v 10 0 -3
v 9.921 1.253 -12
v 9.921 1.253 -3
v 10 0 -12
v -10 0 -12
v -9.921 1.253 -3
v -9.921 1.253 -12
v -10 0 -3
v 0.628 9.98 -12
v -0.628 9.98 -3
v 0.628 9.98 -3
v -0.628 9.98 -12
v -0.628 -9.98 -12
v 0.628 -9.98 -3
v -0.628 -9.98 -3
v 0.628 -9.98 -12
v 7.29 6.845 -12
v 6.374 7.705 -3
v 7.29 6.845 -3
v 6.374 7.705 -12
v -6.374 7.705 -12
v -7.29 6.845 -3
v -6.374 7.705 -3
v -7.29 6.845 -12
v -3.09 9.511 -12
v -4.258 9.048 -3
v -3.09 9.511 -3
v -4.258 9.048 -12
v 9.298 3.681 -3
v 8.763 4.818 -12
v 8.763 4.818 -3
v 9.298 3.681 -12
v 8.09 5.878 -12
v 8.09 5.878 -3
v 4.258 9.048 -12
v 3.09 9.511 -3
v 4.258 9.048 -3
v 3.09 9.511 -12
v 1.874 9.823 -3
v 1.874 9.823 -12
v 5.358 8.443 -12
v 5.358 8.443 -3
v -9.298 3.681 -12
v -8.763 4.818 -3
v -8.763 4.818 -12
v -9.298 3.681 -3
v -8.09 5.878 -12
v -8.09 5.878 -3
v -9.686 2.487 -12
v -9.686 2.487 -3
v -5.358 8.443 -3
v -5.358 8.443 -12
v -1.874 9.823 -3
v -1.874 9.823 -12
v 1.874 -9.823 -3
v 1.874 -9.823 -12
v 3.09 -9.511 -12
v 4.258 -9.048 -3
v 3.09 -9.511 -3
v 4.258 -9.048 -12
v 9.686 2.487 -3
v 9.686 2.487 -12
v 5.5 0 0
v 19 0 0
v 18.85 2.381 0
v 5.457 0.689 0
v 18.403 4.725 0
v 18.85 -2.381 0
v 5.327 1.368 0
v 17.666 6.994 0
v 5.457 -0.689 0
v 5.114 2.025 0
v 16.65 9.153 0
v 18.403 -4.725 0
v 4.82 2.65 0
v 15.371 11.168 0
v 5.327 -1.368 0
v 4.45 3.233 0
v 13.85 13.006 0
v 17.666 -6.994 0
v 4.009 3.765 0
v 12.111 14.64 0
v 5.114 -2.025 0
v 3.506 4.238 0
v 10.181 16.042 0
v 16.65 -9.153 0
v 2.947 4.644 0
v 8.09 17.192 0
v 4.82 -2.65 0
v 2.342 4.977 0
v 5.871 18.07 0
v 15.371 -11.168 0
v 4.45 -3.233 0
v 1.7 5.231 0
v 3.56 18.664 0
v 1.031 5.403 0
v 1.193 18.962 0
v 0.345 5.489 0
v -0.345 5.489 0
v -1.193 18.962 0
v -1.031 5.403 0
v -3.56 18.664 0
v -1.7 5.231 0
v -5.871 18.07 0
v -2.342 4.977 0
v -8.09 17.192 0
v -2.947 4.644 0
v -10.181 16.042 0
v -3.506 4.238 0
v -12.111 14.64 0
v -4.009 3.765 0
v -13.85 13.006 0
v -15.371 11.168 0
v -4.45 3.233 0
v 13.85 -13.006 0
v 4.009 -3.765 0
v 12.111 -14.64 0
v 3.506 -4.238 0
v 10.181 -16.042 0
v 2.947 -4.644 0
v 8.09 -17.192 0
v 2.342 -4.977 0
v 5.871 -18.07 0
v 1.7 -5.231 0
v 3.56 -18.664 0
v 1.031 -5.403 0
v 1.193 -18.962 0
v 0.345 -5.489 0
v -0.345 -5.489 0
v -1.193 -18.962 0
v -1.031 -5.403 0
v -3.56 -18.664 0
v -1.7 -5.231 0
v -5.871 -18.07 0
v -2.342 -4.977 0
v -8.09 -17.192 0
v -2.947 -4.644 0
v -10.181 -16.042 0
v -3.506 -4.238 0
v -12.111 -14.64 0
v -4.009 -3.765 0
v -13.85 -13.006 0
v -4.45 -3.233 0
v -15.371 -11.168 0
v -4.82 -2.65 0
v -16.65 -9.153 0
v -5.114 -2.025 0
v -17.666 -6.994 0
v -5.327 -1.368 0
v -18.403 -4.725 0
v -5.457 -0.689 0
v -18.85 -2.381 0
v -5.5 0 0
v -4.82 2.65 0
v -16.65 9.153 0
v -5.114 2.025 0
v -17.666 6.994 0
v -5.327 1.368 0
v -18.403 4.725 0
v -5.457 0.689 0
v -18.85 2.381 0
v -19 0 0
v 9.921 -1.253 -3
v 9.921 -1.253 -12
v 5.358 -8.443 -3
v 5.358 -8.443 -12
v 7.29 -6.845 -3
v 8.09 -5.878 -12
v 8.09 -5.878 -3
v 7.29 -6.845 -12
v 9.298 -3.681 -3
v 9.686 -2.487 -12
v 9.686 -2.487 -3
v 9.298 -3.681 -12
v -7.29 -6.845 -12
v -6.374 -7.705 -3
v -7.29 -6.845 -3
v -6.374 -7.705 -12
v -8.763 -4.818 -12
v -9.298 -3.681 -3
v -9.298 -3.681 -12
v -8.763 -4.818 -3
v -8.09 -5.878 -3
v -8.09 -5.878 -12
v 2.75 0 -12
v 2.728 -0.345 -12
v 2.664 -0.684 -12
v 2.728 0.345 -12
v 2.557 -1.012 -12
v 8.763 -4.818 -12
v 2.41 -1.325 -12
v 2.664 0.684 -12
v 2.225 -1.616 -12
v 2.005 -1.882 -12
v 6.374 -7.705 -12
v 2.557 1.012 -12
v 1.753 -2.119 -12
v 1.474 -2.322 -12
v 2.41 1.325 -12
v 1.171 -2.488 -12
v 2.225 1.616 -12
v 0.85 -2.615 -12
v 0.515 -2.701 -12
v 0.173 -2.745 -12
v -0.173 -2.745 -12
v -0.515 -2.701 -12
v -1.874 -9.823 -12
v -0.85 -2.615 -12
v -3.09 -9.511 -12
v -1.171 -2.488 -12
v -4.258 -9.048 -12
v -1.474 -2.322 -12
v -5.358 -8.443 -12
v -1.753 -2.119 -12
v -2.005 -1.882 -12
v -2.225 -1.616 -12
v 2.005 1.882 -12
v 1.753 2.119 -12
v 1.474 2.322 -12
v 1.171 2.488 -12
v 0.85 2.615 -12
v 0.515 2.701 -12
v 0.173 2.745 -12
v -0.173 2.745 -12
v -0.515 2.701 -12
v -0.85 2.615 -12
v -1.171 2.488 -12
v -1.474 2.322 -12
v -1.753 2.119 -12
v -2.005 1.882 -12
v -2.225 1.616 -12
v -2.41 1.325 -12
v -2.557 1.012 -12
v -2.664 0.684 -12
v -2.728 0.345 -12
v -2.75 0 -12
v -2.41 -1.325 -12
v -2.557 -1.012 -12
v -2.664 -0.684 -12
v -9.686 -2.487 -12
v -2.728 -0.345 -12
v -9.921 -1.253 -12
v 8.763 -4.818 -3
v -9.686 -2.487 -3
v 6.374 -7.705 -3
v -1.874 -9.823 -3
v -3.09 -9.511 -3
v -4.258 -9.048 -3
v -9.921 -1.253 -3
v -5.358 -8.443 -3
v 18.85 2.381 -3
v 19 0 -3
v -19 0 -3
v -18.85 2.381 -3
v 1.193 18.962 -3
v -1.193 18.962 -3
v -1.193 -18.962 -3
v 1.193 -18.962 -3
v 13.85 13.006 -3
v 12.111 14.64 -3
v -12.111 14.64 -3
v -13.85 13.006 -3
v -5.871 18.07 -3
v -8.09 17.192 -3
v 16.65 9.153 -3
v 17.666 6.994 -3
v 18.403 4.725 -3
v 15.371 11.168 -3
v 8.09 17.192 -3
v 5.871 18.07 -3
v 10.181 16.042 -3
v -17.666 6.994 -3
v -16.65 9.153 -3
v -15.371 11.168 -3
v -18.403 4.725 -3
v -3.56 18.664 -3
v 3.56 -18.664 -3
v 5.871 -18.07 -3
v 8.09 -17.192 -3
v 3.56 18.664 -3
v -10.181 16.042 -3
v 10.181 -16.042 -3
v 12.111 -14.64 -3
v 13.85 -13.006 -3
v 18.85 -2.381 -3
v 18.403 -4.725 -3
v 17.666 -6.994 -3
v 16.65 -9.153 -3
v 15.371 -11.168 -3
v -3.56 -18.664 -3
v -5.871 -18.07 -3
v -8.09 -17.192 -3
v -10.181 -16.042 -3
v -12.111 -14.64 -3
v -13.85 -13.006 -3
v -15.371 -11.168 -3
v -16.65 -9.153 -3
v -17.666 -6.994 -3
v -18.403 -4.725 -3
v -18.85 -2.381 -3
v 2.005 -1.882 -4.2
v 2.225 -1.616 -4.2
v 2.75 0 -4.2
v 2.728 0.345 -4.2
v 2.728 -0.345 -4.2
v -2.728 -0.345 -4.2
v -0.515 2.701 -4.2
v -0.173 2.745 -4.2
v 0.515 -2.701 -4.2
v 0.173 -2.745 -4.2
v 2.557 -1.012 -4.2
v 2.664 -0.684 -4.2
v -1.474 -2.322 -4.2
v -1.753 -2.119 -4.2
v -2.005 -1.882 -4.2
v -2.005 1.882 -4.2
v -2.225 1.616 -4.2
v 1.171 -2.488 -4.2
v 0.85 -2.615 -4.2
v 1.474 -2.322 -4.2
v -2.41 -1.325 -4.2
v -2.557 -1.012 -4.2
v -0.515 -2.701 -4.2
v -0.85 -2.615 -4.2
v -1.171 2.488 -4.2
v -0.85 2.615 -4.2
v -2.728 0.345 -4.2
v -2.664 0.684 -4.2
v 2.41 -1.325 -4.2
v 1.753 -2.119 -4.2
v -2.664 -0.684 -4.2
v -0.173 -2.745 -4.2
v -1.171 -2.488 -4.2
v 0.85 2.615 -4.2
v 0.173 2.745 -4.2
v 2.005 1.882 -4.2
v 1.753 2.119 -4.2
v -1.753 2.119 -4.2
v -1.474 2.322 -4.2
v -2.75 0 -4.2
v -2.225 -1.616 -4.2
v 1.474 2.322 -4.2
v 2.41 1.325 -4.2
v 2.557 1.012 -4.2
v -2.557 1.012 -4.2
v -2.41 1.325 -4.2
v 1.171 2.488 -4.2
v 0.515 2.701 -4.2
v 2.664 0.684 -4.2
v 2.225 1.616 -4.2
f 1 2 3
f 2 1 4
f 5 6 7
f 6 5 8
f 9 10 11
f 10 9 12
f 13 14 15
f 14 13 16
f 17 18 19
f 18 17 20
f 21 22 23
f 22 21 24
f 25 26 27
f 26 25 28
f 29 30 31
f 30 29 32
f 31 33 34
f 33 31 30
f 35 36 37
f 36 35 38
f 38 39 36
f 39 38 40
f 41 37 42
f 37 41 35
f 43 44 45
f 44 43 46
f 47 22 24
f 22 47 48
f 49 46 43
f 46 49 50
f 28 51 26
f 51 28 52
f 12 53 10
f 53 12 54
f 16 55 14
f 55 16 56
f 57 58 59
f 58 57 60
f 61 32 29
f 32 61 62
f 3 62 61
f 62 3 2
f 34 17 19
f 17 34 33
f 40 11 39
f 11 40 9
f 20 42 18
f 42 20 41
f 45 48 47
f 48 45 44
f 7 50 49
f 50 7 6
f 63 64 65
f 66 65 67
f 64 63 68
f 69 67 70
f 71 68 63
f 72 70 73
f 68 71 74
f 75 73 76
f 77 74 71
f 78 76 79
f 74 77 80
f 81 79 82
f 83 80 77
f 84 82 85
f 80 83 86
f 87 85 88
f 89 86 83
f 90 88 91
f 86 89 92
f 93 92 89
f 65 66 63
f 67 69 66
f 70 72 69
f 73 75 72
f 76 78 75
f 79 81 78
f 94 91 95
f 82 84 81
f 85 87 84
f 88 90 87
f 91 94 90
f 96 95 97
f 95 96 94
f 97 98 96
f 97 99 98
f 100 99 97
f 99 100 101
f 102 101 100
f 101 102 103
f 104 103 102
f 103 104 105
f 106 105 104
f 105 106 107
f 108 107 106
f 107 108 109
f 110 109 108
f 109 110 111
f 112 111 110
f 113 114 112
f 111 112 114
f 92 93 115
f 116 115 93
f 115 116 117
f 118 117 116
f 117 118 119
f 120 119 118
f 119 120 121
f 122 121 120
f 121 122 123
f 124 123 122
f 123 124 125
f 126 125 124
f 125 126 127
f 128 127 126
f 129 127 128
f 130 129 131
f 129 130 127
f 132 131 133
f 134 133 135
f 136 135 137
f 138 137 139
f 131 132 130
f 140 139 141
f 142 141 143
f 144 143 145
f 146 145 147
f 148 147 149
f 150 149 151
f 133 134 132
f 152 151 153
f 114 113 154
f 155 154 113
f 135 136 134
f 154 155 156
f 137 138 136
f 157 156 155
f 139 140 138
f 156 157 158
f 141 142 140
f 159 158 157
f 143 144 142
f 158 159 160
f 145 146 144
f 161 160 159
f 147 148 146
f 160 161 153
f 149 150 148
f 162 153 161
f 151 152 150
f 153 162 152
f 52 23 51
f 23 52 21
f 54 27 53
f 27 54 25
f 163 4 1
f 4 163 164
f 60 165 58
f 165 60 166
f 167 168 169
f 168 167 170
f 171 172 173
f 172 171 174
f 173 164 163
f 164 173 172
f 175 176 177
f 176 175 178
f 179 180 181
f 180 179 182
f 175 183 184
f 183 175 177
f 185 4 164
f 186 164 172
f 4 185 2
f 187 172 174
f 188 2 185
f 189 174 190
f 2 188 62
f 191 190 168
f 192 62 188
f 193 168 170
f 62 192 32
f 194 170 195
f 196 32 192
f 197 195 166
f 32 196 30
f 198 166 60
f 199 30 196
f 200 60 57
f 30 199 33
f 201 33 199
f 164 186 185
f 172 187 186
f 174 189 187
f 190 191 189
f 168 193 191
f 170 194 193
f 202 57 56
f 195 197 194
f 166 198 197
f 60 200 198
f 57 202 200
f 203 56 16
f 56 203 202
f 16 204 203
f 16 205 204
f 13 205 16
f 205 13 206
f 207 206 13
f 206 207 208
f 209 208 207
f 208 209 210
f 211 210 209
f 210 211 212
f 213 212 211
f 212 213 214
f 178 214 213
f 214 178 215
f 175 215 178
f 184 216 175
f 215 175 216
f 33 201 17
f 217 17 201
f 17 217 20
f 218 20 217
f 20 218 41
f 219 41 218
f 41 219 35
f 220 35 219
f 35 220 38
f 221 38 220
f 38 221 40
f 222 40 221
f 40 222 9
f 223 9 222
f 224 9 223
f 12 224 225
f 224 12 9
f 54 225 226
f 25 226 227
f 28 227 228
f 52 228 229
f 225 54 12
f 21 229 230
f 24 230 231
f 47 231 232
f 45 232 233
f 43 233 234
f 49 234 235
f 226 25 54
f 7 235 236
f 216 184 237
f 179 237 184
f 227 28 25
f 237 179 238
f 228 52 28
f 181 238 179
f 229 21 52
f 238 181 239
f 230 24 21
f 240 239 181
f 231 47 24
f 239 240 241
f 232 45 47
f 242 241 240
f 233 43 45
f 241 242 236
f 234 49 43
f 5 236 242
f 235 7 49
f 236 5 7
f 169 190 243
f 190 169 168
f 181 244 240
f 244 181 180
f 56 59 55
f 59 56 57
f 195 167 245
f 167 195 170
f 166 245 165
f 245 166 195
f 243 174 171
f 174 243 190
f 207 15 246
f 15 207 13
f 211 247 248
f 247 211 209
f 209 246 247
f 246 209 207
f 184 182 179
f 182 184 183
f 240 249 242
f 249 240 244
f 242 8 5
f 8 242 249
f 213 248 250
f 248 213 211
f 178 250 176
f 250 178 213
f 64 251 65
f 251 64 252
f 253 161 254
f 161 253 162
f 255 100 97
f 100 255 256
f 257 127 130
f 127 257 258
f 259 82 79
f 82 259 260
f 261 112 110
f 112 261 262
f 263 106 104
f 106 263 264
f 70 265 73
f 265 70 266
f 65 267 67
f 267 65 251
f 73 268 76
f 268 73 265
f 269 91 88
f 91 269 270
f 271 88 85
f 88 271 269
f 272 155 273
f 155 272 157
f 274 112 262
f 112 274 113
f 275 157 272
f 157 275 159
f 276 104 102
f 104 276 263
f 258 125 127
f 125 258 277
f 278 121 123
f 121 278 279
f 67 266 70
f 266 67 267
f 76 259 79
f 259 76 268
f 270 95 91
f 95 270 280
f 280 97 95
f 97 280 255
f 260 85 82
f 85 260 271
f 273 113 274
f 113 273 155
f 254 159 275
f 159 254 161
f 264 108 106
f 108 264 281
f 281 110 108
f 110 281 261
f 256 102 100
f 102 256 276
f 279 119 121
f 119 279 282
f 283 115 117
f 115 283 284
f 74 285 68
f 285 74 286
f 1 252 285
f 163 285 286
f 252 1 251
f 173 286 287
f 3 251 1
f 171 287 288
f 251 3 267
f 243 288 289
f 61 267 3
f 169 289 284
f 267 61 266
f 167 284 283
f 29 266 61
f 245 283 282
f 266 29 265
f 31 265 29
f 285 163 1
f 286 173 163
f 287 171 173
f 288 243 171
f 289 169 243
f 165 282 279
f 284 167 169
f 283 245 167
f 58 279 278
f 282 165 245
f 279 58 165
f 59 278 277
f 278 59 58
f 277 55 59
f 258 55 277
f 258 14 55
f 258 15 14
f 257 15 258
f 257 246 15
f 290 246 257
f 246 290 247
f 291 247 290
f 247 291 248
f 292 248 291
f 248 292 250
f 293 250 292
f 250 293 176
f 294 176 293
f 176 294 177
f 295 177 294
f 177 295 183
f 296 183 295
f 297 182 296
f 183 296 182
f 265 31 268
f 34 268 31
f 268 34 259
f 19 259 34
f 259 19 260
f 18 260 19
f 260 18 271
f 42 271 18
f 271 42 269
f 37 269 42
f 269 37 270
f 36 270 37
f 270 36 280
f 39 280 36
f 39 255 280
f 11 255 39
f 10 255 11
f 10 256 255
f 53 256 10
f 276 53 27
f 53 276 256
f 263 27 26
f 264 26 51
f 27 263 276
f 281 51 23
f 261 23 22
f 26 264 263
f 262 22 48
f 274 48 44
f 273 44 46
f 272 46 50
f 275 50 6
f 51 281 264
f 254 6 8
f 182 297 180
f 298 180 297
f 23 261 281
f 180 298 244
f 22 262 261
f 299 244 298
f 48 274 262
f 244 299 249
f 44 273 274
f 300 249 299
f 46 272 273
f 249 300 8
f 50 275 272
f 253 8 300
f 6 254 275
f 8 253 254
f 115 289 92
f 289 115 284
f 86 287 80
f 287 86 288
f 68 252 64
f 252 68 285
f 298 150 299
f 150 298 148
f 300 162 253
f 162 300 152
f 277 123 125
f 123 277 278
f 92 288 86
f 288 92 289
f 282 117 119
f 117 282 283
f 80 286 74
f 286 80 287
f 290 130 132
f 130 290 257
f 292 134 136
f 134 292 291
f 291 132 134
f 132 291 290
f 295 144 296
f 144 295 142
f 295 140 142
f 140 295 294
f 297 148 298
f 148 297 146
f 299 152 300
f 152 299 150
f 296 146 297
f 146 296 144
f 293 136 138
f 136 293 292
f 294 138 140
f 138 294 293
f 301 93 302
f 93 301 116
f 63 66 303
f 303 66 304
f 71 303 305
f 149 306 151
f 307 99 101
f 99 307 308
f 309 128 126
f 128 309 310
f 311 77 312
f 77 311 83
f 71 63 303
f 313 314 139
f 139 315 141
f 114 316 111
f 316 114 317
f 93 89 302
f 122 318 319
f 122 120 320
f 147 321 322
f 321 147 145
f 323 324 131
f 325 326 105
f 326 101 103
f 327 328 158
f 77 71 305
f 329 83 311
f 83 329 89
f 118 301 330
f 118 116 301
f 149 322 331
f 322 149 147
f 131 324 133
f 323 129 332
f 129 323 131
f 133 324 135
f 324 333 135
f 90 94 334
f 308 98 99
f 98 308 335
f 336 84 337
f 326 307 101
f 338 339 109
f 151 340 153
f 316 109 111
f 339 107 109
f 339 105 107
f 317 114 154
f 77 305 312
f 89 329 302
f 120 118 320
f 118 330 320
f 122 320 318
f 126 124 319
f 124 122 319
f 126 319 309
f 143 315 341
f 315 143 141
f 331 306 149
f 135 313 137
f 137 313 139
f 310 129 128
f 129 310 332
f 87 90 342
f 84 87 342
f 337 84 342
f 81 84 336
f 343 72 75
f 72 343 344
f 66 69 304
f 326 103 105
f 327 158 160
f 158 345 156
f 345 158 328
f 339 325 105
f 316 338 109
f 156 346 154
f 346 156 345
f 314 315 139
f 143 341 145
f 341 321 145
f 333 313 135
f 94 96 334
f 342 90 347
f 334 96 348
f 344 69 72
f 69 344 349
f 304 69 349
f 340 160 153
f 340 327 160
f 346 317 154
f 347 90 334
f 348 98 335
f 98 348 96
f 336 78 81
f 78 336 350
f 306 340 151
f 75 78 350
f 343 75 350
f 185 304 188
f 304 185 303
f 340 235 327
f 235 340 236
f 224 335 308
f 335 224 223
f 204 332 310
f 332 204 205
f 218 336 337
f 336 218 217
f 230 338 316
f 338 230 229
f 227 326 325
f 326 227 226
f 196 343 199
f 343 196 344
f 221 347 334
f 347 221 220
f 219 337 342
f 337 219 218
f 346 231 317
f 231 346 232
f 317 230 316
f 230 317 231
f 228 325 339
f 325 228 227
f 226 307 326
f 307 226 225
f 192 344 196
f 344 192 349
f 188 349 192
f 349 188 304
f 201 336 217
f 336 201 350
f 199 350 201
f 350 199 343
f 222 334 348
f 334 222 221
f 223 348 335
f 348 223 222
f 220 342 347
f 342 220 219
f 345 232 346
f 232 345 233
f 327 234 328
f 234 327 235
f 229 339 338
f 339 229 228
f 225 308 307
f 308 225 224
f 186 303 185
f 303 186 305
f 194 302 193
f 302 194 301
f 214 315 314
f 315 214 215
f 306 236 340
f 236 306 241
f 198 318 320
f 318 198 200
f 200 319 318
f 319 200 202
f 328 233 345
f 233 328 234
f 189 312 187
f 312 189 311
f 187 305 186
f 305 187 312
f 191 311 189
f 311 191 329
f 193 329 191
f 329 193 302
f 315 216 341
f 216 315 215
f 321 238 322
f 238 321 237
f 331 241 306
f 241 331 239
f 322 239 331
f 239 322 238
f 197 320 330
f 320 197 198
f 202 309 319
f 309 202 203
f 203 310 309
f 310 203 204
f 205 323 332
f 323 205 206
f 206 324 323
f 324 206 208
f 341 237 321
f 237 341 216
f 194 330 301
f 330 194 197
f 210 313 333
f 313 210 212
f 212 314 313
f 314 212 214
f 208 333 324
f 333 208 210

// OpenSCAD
$fn = 50;


difference() {
	union() {
		translate(v = [0, 0, -12.0000000000]) {
			cylinder(h = 12, r = 10.0000000000);
		}
		translate(v = [0, 0, -3.0000000000]) {
			cylinder(h = 3, r = 19.0000000000);
		}
	}
	union() {
		translate(v = [0, 0, 0]) {
			rotate(a = [0, 0, 0]) {
				difference() {
					union() {
						#translate(v = [0, 0, -12.0000000000]) {
							cylinder(h = 12, r = 2.2500000000);
						}
						#translate(v = [0, 0, -4.2000000000]) {
							cylinder(h = 4.2000000000, r = 10.0000000000, r1 = 2.7500000000, r2 = 5.5000000000);
						}
						#translate(v = [0, 0, -12.0000000000]) {
							cylinder(h = 12, r = 2.7500000000);
						}
						#translate(v = [0, 0, -12.0000000000]) {
							cylinder(h = 12, r = 2.2500000000);
						}
					}
					union();
				}
			}
		}
	}
}
